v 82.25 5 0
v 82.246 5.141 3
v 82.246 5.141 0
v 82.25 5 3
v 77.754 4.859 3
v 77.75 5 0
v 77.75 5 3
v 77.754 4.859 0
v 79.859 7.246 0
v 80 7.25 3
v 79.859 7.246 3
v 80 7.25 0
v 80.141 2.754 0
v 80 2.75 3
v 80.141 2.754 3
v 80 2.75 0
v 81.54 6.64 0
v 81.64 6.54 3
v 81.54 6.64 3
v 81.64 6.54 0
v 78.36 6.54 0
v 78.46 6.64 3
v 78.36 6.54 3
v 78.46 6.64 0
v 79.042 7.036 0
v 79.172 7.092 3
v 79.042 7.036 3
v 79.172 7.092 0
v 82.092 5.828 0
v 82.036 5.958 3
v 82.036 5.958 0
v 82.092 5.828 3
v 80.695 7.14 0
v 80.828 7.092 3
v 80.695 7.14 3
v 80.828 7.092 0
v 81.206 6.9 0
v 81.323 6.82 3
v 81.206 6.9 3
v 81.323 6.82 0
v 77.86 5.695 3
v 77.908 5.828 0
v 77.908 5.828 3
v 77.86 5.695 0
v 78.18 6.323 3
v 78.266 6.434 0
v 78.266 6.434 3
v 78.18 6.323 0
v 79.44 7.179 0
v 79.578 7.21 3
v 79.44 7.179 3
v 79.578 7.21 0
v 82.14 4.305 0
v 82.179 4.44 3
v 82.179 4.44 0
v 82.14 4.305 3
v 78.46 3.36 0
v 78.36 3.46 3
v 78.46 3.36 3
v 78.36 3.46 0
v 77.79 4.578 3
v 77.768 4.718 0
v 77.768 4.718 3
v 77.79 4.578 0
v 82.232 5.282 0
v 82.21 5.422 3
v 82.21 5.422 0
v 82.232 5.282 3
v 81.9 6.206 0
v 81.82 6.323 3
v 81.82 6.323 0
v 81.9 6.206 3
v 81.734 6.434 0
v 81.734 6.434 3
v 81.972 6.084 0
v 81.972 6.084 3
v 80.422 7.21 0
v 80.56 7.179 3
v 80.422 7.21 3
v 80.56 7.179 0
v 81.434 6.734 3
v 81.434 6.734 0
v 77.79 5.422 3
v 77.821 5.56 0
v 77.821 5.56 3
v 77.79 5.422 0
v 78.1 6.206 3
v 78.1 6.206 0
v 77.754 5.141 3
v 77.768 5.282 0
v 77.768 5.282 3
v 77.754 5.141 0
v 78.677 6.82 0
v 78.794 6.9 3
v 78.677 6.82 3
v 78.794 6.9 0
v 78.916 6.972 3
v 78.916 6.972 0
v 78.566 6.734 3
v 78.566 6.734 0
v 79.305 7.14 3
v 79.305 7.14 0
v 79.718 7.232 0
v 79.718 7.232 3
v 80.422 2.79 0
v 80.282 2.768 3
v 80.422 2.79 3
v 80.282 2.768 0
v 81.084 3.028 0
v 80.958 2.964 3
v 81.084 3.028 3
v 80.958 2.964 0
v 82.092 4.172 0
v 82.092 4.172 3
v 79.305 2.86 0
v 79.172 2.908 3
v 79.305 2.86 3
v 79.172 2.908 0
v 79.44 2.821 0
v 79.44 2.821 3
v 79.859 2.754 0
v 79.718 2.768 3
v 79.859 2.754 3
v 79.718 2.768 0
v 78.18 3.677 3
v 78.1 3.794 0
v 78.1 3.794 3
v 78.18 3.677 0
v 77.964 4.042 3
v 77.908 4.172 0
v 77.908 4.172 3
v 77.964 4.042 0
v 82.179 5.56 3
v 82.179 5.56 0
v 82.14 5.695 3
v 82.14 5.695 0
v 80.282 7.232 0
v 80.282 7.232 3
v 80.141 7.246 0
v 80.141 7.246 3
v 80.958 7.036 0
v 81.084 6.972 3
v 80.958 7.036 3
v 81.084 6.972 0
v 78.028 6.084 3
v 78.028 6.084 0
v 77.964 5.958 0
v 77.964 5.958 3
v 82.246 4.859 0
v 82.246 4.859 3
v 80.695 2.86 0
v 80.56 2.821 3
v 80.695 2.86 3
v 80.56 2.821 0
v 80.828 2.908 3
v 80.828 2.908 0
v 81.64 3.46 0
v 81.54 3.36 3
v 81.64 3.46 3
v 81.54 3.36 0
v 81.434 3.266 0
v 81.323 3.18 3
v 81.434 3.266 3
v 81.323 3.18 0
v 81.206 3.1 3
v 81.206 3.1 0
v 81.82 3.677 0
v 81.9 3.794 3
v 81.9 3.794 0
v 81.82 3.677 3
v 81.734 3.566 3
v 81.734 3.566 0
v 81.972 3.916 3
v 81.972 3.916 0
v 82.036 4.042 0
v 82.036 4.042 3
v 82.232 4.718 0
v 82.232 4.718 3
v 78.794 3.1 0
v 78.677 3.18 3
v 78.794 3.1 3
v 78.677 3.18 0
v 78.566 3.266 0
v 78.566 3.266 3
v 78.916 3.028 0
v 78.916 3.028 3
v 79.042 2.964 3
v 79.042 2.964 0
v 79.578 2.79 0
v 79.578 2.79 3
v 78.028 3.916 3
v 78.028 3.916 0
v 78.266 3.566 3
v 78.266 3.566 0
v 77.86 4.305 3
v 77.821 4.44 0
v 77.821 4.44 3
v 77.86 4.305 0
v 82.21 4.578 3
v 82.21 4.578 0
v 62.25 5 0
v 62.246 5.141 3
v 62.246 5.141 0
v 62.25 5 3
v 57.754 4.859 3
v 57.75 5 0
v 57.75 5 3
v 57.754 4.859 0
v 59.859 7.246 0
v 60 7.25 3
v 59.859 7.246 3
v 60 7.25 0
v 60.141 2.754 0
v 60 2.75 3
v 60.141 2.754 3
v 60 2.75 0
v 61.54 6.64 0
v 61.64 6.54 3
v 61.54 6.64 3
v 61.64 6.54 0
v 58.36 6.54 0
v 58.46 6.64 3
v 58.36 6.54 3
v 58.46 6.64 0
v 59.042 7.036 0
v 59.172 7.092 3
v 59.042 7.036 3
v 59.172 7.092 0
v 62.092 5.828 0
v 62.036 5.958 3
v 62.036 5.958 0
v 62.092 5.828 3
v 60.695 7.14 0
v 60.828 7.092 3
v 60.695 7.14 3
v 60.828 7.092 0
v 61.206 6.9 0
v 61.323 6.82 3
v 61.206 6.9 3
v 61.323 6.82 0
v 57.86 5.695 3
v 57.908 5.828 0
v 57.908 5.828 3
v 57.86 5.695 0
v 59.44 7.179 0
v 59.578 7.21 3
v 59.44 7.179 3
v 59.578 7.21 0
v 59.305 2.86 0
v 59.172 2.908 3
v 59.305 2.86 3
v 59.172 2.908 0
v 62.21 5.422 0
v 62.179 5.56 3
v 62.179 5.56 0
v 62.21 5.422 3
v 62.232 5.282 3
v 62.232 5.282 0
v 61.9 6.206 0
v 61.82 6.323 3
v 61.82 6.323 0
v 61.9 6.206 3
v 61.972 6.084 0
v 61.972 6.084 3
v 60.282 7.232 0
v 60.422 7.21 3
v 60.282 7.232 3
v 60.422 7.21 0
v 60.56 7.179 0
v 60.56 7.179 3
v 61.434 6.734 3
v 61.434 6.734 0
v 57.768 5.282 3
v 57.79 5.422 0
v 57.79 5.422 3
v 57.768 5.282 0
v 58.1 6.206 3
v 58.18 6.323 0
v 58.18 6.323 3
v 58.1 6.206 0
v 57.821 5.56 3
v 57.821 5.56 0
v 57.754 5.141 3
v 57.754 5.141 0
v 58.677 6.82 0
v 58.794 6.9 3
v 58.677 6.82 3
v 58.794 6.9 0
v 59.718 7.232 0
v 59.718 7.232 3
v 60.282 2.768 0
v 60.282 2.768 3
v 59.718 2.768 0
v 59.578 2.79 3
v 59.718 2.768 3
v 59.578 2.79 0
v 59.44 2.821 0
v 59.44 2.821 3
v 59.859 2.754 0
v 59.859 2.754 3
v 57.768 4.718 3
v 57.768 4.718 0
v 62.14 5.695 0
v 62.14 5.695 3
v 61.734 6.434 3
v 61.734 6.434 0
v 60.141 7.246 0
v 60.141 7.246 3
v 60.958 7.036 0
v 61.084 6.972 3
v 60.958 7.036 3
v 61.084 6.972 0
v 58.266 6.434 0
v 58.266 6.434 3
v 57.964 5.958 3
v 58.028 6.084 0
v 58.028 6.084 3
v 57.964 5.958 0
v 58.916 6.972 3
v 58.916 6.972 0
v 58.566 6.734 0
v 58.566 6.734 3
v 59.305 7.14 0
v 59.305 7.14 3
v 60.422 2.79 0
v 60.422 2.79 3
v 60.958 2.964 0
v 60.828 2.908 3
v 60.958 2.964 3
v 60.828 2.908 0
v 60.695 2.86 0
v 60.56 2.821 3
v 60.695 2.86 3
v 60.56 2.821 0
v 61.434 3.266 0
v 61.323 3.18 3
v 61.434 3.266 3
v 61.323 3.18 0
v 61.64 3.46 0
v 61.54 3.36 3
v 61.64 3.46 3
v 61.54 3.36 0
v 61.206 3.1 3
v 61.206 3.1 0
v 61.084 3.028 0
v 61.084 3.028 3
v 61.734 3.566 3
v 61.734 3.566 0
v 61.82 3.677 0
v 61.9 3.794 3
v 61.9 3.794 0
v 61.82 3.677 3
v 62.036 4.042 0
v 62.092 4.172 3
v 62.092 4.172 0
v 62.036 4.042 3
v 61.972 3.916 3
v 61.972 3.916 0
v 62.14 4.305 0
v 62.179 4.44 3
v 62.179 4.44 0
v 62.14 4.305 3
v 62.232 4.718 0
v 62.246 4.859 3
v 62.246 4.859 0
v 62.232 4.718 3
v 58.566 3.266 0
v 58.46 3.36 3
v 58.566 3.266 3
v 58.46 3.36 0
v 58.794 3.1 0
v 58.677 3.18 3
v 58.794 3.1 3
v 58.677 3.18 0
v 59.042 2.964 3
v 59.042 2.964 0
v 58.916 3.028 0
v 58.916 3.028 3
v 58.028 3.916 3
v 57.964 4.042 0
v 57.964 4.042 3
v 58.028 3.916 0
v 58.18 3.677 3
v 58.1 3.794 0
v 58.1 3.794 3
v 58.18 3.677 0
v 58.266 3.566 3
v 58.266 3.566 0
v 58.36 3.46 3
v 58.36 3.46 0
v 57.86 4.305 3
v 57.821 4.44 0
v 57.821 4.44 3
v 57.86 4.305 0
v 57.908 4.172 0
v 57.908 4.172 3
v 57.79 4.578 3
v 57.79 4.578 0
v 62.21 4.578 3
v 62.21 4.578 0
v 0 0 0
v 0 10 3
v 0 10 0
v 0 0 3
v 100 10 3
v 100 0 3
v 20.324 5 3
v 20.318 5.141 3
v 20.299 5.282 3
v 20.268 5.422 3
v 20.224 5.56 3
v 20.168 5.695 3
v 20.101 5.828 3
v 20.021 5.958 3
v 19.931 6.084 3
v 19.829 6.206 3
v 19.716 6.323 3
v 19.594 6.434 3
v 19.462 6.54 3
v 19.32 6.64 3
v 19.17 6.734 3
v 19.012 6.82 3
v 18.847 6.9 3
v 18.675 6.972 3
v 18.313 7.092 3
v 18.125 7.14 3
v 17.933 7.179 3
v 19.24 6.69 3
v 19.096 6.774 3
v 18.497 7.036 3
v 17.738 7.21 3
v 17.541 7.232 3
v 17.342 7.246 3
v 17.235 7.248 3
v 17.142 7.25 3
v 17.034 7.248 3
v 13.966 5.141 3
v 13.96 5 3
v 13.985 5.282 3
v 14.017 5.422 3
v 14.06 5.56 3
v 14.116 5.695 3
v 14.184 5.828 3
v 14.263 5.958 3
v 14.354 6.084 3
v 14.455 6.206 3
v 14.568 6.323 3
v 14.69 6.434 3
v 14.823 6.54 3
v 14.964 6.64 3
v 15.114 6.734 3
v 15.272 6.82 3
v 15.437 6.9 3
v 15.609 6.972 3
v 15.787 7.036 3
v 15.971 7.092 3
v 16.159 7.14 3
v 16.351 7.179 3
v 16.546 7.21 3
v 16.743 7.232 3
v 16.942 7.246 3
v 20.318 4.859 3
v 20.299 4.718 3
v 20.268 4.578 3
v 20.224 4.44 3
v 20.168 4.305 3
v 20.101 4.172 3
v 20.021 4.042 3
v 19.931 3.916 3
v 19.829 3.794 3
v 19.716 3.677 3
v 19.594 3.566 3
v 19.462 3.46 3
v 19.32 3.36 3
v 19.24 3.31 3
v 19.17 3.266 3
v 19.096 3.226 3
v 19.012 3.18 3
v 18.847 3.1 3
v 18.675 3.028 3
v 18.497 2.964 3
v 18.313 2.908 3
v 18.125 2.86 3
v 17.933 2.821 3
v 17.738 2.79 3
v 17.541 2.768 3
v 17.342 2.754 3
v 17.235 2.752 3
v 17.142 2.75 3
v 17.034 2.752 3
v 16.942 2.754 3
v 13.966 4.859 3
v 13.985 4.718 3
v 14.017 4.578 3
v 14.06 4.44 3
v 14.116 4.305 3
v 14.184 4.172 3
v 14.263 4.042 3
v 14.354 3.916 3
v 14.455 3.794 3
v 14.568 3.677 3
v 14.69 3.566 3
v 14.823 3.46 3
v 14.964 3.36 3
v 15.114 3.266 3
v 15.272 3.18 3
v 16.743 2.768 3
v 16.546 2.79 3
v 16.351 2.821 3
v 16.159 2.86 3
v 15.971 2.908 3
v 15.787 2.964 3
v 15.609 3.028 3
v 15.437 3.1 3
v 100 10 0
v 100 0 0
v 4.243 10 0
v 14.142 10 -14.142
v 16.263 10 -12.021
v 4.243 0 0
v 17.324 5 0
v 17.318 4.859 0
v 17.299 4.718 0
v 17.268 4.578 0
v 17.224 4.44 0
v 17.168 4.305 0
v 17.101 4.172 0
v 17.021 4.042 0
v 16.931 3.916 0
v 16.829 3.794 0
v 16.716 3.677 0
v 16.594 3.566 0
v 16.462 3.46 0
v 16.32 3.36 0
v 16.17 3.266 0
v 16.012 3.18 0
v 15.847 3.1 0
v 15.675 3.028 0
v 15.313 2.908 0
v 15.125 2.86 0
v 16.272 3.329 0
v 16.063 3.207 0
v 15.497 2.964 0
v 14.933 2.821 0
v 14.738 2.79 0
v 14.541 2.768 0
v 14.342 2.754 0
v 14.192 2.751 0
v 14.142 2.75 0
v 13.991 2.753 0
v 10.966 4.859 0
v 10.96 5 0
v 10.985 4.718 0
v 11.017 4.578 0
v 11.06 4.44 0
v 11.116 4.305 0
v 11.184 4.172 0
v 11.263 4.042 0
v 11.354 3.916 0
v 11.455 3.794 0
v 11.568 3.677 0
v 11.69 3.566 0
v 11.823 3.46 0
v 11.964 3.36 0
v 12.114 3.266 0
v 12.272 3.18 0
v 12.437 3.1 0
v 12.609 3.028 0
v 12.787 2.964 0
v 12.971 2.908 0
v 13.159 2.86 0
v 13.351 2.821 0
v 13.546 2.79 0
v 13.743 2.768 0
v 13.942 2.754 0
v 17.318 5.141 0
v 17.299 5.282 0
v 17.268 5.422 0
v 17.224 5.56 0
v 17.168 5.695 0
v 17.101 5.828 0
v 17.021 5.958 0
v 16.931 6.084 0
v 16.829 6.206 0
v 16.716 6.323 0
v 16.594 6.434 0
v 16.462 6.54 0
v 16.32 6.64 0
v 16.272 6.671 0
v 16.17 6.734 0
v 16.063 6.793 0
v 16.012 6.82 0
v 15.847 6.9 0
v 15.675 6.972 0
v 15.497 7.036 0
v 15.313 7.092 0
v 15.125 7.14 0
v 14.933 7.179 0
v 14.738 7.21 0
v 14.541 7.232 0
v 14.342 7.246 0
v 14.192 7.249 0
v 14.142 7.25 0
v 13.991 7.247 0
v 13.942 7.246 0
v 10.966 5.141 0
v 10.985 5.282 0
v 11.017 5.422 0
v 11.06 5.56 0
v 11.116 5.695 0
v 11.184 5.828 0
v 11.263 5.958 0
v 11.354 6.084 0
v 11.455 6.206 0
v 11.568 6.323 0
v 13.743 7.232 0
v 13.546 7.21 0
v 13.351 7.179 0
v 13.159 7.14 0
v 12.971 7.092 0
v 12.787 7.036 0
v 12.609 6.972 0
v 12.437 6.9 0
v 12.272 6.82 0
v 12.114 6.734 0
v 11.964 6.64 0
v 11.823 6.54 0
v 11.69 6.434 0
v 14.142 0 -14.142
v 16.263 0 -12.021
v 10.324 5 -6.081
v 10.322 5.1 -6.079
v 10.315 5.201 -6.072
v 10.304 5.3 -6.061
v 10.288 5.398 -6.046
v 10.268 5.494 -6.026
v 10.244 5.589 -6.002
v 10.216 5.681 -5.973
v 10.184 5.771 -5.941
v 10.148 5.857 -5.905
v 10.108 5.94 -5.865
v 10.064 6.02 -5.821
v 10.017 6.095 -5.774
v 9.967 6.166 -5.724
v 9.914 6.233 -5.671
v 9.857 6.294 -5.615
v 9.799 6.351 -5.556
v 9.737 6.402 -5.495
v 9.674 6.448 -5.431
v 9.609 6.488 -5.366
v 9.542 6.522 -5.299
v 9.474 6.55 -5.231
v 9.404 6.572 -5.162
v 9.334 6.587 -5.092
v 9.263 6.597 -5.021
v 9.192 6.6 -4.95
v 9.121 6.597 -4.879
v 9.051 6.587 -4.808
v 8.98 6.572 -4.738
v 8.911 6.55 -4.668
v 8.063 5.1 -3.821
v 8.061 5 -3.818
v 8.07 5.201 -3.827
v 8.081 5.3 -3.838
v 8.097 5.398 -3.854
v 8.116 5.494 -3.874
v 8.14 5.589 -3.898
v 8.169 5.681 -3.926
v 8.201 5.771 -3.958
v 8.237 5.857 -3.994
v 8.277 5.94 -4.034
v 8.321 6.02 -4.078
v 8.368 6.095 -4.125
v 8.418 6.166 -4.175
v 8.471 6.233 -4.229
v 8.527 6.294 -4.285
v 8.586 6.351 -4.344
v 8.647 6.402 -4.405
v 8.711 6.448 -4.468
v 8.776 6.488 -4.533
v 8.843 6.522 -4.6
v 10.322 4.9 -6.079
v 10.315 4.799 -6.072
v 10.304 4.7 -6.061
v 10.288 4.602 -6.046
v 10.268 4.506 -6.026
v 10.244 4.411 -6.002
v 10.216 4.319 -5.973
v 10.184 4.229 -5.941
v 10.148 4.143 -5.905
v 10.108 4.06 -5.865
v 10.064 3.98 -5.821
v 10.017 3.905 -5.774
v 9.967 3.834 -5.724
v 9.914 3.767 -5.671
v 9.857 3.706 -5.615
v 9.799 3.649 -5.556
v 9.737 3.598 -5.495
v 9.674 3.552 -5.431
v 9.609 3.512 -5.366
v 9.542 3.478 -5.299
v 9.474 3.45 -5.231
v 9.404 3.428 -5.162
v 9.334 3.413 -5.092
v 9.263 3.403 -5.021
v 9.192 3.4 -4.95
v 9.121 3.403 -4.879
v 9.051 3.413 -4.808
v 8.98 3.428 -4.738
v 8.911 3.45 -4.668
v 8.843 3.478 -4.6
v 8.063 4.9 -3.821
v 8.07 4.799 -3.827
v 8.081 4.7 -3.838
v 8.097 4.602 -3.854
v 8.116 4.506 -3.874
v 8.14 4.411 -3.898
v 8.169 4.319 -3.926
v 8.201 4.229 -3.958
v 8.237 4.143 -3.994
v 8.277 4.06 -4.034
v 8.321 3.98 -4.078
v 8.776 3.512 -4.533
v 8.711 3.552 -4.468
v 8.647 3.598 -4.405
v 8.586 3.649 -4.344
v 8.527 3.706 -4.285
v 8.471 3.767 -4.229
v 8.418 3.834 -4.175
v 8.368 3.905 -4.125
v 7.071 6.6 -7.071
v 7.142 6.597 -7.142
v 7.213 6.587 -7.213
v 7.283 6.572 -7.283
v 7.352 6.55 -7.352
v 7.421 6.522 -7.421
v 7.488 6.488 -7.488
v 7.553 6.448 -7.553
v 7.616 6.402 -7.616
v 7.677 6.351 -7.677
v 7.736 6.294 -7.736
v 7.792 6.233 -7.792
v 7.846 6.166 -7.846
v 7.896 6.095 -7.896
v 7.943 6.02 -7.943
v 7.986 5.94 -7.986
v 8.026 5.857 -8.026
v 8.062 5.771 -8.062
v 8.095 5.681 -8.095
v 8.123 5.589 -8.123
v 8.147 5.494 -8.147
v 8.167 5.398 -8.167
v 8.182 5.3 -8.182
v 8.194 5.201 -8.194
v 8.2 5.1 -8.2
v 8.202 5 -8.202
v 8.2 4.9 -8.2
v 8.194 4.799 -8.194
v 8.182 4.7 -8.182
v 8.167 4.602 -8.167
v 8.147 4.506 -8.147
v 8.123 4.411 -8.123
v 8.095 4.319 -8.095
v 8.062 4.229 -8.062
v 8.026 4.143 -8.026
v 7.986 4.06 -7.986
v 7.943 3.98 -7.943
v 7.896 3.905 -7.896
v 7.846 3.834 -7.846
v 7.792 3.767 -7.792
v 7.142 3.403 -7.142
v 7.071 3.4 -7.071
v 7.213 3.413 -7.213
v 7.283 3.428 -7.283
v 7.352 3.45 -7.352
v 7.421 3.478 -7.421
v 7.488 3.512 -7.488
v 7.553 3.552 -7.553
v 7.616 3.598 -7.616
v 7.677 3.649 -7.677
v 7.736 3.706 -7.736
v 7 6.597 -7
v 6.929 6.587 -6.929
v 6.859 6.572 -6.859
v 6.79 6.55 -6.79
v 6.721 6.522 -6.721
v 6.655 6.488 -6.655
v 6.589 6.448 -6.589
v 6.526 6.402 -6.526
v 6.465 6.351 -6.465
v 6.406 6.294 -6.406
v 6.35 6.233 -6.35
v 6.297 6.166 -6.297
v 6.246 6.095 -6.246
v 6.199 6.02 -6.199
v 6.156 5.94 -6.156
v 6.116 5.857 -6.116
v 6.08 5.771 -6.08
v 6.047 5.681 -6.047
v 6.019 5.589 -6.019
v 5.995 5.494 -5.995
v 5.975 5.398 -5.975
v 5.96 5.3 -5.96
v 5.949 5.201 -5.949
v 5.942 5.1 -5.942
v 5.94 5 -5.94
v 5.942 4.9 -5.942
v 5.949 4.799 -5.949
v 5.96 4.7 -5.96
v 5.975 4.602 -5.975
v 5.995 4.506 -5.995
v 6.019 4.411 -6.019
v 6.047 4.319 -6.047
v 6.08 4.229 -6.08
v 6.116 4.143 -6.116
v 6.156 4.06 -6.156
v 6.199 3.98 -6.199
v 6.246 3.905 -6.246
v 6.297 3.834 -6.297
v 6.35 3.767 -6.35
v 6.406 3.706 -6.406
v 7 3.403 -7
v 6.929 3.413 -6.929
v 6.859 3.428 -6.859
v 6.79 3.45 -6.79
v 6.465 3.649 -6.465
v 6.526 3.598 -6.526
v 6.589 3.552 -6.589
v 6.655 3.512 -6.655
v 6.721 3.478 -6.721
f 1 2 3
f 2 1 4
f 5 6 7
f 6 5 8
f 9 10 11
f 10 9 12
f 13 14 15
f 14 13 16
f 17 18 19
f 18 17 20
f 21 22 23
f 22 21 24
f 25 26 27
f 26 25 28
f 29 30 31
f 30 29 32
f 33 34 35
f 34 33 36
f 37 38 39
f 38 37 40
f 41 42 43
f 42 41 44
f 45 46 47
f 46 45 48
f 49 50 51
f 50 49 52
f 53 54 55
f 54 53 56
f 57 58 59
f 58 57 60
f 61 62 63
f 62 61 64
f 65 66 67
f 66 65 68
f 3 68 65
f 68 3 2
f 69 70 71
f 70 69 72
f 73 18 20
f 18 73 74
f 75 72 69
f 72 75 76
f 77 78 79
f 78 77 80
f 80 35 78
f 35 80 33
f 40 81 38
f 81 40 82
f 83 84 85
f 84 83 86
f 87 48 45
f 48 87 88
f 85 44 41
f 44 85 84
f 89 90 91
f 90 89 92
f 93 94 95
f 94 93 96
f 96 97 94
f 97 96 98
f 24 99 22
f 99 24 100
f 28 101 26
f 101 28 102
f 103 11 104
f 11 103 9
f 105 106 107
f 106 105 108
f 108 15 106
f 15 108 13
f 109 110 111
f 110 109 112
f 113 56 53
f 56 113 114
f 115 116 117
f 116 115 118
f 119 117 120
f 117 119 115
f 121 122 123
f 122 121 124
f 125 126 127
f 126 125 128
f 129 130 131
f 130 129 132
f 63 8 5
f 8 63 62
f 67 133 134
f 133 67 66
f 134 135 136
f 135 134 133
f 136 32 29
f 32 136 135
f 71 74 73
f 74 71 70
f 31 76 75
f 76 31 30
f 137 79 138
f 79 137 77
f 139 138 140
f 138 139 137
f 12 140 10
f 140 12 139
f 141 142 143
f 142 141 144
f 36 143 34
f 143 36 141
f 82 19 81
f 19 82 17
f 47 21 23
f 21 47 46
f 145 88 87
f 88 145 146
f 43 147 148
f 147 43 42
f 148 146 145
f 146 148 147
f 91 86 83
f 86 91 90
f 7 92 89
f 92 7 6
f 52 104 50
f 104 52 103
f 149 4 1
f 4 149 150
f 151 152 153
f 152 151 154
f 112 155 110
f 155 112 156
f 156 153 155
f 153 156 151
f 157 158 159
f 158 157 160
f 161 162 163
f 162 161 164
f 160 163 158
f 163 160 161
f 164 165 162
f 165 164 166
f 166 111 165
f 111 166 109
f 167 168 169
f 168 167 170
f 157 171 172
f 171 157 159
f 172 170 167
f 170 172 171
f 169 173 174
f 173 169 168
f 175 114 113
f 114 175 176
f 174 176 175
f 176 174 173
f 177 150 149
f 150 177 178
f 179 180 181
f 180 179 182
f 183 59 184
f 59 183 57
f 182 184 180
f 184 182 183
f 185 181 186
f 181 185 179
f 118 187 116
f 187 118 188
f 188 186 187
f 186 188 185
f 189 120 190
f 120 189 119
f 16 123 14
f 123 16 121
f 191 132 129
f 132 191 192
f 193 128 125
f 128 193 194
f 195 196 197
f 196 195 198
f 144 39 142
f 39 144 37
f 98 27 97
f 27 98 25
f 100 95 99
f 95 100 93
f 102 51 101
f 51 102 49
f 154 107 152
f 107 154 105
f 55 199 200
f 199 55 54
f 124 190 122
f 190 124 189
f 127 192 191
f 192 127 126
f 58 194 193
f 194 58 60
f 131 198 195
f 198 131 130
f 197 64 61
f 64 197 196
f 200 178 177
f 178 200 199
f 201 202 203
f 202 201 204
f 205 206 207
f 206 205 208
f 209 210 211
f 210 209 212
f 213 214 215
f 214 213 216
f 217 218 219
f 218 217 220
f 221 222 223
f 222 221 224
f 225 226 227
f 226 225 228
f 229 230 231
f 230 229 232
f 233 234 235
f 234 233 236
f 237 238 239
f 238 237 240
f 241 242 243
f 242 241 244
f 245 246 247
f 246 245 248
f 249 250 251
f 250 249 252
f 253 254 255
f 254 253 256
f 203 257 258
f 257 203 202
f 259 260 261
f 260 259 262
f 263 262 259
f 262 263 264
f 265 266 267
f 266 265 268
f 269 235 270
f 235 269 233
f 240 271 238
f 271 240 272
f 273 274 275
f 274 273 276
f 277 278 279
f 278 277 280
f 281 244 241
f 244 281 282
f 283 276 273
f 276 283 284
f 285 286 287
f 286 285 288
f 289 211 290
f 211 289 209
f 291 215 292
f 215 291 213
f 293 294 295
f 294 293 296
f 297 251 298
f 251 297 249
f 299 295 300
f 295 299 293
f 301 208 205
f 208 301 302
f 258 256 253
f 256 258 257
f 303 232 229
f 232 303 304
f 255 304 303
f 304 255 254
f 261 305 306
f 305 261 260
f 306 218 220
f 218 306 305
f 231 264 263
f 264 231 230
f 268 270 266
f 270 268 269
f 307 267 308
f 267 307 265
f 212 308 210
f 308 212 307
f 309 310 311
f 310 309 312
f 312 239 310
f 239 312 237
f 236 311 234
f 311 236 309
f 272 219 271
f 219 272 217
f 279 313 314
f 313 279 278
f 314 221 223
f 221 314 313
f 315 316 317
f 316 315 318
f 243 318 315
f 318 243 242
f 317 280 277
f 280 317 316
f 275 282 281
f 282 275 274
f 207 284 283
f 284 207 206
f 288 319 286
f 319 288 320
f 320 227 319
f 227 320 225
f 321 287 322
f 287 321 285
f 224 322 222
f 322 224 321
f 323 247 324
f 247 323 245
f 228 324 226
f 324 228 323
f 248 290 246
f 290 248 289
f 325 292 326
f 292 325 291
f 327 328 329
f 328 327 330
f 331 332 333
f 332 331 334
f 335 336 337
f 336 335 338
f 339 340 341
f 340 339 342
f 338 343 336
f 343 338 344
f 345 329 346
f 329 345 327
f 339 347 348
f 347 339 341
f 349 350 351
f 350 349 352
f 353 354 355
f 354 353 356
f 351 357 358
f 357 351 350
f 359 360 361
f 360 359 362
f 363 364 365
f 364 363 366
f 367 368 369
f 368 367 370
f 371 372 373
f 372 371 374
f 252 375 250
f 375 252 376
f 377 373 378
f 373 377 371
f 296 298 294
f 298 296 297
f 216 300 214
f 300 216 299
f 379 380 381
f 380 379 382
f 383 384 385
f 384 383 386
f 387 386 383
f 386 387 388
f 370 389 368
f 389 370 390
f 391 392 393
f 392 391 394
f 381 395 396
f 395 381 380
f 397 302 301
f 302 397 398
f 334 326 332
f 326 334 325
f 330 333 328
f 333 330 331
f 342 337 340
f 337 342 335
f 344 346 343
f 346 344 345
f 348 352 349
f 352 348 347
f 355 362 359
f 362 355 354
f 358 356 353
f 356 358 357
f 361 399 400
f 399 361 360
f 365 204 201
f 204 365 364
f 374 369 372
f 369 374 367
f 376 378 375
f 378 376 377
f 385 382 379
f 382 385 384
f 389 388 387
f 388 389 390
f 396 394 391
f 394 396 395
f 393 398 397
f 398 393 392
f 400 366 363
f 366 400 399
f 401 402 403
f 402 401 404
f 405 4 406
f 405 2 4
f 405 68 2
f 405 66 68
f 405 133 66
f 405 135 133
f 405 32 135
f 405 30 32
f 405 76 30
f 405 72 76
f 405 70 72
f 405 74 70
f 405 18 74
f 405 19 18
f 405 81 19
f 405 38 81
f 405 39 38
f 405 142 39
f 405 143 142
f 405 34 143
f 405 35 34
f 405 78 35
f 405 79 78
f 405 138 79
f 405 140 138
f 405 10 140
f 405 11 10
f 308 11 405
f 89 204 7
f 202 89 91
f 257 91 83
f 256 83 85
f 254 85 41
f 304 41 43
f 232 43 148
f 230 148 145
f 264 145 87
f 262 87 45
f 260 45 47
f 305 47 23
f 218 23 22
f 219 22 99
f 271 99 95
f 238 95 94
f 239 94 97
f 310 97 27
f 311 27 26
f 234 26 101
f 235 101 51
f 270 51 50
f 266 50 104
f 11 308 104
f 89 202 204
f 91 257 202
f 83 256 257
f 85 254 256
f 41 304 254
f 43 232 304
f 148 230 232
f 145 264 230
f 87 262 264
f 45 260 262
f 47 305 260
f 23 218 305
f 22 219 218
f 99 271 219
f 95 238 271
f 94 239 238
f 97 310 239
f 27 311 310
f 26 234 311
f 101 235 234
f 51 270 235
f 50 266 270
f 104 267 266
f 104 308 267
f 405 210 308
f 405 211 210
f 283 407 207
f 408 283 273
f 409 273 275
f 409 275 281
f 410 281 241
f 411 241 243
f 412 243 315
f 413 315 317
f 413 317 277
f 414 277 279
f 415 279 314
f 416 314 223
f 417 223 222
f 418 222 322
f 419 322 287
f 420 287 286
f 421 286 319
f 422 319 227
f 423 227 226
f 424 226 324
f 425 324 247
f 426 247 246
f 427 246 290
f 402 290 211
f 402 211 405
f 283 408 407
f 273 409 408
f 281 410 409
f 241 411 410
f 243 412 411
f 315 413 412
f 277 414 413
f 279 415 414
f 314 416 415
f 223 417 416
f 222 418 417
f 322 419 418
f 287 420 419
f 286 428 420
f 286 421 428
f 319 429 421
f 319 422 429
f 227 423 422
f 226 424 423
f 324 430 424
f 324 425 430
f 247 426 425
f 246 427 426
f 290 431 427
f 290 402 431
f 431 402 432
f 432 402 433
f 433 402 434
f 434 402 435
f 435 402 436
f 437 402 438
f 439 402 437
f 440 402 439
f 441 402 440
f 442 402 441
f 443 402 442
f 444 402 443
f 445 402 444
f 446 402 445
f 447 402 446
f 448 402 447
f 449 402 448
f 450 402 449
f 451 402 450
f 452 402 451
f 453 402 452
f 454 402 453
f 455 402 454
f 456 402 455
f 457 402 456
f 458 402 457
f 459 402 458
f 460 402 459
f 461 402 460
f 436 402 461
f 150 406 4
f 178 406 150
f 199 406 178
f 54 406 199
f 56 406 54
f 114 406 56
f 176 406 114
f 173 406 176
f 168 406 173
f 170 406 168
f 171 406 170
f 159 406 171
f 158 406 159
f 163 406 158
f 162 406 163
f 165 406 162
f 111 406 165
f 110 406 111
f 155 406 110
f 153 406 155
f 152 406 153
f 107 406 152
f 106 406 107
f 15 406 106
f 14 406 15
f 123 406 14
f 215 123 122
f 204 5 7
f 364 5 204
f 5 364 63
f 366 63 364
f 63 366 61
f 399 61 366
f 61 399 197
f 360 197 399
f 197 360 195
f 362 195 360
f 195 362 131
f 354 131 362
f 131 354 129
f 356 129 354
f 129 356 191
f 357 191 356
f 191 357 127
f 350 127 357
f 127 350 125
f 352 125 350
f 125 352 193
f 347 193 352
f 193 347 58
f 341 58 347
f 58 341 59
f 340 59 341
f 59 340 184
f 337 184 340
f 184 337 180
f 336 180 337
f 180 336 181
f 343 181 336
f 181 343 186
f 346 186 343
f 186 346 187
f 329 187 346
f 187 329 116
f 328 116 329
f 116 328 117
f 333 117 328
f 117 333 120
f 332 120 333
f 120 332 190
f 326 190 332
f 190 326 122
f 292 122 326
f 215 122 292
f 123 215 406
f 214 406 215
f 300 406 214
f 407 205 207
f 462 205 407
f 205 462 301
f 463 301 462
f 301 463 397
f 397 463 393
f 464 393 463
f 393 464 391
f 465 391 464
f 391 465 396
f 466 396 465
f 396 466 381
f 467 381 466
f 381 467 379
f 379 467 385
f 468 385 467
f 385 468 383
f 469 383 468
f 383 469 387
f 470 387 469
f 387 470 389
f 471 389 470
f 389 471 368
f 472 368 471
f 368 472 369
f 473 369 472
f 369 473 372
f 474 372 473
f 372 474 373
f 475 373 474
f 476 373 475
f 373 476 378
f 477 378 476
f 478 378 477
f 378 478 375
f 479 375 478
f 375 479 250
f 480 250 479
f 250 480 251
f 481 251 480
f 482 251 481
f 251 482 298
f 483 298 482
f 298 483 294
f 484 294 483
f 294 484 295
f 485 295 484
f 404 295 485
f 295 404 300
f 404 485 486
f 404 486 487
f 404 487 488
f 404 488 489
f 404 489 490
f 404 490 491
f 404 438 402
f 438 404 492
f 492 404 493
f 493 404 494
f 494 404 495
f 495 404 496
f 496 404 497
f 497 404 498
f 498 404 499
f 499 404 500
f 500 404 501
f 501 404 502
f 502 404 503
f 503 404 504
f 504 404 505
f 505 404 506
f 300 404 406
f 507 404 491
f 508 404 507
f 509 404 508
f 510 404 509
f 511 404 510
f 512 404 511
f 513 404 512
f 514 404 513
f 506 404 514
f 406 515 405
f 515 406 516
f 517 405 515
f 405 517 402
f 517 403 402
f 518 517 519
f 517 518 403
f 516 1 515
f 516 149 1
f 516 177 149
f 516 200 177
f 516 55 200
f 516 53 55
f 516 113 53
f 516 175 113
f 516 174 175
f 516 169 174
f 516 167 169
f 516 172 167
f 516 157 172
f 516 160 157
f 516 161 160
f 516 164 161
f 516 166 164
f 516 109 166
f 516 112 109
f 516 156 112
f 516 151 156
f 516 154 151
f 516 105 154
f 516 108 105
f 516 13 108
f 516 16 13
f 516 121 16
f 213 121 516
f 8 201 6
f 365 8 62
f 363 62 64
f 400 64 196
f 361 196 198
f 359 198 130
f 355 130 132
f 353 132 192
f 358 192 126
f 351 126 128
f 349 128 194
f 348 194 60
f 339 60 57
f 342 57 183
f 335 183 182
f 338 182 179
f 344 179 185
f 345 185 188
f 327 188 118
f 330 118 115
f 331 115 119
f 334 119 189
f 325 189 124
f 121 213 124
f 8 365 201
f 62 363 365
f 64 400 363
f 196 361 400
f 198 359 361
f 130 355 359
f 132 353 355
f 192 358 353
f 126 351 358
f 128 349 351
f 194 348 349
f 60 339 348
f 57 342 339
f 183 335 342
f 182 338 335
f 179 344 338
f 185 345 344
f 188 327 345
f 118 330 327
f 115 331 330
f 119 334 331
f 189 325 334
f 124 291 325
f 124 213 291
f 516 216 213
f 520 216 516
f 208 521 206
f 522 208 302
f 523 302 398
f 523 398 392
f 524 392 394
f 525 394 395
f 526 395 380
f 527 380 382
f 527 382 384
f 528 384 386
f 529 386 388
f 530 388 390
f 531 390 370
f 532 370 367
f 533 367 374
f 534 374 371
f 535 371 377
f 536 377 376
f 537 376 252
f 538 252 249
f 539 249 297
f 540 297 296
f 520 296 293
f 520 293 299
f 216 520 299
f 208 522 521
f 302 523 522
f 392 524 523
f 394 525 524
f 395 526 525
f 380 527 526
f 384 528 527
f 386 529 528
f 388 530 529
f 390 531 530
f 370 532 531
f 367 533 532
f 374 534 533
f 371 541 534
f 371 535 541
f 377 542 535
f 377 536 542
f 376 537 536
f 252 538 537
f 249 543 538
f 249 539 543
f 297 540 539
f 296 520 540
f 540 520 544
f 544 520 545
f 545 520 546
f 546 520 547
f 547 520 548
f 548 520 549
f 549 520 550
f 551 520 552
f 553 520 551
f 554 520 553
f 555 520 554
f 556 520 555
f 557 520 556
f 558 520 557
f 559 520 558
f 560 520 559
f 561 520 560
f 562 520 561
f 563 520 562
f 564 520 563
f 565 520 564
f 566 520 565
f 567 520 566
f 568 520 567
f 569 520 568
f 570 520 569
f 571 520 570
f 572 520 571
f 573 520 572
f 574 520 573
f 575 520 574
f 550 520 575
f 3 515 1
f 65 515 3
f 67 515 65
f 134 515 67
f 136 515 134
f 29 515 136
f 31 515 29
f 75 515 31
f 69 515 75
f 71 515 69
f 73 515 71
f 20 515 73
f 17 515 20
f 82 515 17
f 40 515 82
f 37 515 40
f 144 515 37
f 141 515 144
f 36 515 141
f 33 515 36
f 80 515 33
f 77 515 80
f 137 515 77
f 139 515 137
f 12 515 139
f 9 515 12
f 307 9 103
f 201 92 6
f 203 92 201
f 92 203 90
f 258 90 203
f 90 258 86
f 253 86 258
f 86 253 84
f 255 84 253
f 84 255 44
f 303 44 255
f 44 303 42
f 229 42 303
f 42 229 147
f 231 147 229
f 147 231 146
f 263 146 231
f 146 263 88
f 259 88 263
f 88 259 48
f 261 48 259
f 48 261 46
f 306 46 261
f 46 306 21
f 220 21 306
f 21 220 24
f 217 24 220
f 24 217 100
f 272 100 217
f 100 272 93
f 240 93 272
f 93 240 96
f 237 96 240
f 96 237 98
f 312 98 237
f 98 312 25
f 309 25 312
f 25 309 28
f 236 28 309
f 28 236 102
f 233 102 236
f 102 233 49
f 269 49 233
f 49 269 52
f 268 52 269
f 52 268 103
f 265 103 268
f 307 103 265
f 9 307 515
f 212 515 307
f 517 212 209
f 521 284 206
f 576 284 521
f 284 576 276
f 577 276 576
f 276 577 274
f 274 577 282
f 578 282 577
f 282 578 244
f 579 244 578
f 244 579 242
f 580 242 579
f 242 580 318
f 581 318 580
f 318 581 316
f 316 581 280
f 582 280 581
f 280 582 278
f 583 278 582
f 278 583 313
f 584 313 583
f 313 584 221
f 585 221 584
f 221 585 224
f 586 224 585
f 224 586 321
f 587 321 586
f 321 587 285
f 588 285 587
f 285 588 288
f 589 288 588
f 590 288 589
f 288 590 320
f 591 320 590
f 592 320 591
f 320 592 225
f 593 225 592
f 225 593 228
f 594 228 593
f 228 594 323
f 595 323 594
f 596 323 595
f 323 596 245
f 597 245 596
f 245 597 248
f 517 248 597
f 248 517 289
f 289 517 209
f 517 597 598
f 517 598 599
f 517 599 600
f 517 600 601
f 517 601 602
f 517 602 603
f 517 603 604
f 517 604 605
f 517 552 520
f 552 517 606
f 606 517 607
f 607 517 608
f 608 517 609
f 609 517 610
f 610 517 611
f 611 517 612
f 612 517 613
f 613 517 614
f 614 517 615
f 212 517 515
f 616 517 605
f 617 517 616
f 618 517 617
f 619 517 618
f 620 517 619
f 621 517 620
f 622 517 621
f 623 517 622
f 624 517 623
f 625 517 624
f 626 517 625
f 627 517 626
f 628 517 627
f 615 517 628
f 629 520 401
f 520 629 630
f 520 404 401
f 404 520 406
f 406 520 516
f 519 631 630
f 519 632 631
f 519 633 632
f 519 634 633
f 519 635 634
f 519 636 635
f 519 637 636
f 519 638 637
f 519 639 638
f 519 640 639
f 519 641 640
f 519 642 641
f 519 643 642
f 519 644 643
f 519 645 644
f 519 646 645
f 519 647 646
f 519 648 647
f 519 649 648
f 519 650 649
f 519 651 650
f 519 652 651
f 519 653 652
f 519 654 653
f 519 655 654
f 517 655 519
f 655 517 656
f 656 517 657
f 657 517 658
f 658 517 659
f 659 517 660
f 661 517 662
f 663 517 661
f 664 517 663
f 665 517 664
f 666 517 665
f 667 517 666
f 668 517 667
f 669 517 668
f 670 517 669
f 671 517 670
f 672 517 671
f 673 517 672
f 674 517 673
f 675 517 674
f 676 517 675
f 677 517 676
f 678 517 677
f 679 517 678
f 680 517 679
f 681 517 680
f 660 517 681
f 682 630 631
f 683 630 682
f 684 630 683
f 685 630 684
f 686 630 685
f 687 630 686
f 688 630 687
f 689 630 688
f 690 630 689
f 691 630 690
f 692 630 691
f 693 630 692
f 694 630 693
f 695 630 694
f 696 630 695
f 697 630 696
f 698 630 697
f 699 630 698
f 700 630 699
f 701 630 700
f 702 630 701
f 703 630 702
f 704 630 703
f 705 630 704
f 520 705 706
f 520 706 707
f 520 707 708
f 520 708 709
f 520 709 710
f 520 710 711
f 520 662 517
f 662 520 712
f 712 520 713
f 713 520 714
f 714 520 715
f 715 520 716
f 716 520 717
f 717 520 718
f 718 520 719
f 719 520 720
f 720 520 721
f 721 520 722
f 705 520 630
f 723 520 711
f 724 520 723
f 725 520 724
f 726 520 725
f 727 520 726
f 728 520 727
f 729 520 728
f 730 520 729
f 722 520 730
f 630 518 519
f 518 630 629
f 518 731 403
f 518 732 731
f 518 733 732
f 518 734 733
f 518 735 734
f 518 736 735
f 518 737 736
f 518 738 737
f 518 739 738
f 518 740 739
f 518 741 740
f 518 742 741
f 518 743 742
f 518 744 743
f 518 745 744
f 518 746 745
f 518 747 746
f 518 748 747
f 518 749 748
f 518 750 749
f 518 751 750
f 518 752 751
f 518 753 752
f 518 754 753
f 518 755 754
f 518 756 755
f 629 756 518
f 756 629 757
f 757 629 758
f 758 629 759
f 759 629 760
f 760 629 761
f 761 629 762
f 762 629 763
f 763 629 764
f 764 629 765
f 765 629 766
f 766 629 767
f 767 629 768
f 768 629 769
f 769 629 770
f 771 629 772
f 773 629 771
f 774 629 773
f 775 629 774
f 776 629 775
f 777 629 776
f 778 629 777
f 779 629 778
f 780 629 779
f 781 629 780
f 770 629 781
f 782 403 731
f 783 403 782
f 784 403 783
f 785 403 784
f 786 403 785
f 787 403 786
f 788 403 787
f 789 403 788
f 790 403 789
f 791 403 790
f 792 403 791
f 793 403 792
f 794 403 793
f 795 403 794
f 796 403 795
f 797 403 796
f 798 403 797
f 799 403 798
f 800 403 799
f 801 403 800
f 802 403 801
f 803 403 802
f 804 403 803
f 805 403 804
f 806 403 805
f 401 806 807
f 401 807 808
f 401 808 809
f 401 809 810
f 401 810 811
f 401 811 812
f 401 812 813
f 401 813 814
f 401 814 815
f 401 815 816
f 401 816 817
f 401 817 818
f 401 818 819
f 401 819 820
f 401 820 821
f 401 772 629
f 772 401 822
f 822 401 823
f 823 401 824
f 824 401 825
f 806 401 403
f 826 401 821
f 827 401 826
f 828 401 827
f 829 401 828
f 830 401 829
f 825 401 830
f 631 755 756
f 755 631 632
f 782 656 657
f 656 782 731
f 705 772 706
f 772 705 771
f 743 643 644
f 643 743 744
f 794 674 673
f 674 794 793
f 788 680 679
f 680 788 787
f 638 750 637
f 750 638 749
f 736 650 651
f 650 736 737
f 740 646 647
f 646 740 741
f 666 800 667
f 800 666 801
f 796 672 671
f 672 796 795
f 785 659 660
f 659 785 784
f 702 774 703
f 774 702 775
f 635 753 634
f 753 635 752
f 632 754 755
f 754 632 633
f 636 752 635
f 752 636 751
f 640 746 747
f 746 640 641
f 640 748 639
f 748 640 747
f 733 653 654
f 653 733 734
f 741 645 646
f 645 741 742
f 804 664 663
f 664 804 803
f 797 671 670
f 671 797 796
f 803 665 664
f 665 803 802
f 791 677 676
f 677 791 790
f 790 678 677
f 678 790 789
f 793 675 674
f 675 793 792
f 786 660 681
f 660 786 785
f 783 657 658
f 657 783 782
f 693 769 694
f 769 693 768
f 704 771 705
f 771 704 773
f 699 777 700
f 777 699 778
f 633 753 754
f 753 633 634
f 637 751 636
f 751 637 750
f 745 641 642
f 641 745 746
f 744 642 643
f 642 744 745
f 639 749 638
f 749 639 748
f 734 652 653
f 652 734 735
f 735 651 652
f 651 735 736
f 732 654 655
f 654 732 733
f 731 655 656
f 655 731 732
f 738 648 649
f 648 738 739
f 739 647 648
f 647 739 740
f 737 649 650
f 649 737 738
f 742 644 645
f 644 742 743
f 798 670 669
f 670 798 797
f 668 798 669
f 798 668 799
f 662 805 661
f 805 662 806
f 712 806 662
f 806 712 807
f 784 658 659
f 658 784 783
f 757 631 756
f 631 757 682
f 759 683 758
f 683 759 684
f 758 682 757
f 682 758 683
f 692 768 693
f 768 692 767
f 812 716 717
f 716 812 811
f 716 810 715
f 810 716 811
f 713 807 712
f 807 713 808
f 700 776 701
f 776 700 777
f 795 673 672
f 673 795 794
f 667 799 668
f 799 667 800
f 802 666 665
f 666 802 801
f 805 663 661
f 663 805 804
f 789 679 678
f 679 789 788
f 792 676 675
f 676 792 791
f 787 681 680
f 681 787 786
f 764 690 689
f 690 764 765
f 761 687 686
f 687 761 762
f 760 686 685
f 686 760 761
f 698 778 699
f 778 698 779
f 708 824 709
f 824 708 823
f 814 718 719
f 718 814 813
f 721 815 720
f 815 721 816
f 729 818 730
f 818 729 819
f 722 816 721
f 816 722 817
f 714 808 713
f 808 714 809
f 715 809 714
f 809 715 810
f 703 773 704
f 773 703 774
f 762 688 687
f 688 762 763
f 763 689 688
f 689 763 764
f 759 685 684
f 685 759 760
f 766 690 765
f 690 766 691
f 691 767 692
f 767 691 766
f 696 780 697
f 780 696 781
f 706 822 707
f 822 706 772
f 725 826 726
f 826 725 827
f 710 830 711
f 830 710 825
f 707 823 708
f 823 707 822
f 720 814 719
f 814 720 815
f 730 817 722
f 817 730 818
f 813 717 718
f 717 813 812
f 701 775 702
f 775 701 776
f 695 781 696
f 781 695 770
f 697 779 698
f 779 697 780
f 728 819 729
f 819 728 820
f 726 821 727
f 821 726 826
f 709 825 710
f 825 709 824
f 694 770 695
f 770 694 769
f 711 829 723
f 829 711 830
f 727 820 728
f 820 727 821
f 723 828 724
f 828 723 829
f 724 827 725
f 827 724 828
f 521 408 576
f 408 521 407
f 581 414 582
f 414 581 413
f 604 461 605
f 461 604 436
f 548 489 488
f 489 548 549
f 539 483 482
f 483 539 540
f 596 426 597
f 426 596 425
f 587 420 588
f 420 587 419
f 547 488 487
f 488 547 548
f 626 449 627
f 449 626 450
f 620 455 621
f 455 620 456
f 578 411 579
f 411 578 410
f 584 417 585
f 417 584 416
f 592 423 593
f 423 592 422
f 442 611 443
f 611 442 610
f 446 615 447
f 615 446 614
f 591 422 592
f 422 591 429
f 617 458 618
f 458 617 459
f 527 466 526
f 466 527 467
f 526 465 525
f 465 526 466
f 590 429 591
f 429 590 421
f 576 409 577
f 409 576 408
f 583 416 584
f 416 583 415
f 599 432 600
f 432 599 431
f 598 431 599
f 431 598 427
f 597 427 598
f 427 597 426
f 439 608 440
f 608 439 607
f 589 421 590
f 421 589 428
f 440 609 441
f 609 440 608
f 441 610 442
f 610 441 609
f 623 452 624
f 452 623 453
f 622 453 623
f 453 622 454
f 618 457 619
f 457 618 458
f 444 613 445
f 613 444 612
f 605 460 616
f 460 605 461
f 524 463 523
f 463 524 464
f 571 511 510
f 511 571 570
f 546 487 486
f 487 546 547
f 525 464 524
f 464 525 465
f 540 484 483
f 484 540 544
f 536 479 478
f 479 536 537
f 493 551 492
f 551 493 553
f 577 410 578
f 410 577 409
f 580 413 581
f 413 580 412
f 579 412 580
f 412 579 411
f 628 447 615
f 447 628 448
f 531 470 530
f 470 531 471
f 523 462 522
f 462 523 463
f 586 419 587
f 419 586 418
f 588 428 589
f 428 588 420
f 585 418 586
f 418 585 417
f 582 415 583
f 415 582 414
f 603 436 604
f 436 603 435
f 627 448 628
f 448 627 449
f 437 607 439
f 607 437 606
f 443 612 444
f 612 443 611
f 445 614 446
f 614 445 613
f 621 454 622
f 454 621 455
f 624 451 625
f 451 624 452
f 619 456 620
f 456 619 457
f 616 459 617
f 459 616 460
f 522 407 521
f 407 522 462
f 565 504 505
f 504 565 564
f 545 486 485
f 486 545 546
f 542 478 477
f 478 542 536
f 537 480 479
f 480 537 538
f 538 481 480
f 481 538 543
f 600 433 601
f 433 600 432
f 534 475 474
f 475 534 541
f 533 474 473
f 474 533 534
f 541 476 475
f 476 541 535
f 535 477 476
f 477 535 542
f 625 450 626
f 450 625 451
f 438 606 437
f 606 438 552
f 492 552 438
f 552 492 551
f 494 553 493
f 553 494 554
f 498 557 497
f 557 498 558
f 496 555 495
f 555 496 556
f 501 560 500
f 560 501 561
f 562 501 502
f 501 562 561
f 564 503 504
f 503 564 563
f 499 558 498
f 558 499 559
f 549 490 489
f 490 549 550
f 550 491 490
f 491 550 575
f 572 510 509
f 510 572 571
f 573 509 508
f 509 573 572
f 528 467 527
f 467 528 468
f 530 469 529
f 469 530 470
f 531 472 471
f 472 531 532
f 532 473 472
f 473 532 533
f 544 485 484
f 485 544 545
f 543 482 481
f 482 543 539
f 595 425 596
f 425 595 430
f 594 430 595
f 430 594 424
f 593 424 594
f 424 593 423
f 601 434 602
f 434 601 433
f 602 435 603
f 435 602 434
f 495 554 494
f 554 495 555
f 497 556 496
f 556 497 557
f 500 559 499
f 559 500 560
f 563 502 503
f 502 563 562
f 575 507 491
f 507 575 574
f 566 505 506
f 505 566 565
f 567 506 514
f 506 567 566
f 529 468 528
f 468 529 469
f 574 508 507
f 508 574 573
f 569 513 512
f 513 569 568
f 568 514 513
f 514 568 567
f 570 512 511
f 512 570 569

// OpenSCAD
difference()
{
    union()
    {
        difference()
        {
            cube(size = [100,10,3], center = false);
            union()
            {
                translate([80, 5, -5])
                    cylinder(h=20, r=2.25, center=true, $fn = 100);
                translate([60, 5, -5])
                    cylinder(h=20, r=2.25, center=true, $fn = 100);
            }
        }
        translate([0, 0, 0])
            rotate([0,45,0])
                difference()
                {
                    cube(size = [20,10,3], center = false);
                    translate([10, 5, -5])
                        cylinder(h=20, r=1.6, center=true, $fn = 100);
                }
    }
    translate([0, 0, 0])
        rotate([0,45,0])
            translate([10, 5, 15])
                cylinder(h=20, r=2.25, center=true, $fn = 100);
                
}
